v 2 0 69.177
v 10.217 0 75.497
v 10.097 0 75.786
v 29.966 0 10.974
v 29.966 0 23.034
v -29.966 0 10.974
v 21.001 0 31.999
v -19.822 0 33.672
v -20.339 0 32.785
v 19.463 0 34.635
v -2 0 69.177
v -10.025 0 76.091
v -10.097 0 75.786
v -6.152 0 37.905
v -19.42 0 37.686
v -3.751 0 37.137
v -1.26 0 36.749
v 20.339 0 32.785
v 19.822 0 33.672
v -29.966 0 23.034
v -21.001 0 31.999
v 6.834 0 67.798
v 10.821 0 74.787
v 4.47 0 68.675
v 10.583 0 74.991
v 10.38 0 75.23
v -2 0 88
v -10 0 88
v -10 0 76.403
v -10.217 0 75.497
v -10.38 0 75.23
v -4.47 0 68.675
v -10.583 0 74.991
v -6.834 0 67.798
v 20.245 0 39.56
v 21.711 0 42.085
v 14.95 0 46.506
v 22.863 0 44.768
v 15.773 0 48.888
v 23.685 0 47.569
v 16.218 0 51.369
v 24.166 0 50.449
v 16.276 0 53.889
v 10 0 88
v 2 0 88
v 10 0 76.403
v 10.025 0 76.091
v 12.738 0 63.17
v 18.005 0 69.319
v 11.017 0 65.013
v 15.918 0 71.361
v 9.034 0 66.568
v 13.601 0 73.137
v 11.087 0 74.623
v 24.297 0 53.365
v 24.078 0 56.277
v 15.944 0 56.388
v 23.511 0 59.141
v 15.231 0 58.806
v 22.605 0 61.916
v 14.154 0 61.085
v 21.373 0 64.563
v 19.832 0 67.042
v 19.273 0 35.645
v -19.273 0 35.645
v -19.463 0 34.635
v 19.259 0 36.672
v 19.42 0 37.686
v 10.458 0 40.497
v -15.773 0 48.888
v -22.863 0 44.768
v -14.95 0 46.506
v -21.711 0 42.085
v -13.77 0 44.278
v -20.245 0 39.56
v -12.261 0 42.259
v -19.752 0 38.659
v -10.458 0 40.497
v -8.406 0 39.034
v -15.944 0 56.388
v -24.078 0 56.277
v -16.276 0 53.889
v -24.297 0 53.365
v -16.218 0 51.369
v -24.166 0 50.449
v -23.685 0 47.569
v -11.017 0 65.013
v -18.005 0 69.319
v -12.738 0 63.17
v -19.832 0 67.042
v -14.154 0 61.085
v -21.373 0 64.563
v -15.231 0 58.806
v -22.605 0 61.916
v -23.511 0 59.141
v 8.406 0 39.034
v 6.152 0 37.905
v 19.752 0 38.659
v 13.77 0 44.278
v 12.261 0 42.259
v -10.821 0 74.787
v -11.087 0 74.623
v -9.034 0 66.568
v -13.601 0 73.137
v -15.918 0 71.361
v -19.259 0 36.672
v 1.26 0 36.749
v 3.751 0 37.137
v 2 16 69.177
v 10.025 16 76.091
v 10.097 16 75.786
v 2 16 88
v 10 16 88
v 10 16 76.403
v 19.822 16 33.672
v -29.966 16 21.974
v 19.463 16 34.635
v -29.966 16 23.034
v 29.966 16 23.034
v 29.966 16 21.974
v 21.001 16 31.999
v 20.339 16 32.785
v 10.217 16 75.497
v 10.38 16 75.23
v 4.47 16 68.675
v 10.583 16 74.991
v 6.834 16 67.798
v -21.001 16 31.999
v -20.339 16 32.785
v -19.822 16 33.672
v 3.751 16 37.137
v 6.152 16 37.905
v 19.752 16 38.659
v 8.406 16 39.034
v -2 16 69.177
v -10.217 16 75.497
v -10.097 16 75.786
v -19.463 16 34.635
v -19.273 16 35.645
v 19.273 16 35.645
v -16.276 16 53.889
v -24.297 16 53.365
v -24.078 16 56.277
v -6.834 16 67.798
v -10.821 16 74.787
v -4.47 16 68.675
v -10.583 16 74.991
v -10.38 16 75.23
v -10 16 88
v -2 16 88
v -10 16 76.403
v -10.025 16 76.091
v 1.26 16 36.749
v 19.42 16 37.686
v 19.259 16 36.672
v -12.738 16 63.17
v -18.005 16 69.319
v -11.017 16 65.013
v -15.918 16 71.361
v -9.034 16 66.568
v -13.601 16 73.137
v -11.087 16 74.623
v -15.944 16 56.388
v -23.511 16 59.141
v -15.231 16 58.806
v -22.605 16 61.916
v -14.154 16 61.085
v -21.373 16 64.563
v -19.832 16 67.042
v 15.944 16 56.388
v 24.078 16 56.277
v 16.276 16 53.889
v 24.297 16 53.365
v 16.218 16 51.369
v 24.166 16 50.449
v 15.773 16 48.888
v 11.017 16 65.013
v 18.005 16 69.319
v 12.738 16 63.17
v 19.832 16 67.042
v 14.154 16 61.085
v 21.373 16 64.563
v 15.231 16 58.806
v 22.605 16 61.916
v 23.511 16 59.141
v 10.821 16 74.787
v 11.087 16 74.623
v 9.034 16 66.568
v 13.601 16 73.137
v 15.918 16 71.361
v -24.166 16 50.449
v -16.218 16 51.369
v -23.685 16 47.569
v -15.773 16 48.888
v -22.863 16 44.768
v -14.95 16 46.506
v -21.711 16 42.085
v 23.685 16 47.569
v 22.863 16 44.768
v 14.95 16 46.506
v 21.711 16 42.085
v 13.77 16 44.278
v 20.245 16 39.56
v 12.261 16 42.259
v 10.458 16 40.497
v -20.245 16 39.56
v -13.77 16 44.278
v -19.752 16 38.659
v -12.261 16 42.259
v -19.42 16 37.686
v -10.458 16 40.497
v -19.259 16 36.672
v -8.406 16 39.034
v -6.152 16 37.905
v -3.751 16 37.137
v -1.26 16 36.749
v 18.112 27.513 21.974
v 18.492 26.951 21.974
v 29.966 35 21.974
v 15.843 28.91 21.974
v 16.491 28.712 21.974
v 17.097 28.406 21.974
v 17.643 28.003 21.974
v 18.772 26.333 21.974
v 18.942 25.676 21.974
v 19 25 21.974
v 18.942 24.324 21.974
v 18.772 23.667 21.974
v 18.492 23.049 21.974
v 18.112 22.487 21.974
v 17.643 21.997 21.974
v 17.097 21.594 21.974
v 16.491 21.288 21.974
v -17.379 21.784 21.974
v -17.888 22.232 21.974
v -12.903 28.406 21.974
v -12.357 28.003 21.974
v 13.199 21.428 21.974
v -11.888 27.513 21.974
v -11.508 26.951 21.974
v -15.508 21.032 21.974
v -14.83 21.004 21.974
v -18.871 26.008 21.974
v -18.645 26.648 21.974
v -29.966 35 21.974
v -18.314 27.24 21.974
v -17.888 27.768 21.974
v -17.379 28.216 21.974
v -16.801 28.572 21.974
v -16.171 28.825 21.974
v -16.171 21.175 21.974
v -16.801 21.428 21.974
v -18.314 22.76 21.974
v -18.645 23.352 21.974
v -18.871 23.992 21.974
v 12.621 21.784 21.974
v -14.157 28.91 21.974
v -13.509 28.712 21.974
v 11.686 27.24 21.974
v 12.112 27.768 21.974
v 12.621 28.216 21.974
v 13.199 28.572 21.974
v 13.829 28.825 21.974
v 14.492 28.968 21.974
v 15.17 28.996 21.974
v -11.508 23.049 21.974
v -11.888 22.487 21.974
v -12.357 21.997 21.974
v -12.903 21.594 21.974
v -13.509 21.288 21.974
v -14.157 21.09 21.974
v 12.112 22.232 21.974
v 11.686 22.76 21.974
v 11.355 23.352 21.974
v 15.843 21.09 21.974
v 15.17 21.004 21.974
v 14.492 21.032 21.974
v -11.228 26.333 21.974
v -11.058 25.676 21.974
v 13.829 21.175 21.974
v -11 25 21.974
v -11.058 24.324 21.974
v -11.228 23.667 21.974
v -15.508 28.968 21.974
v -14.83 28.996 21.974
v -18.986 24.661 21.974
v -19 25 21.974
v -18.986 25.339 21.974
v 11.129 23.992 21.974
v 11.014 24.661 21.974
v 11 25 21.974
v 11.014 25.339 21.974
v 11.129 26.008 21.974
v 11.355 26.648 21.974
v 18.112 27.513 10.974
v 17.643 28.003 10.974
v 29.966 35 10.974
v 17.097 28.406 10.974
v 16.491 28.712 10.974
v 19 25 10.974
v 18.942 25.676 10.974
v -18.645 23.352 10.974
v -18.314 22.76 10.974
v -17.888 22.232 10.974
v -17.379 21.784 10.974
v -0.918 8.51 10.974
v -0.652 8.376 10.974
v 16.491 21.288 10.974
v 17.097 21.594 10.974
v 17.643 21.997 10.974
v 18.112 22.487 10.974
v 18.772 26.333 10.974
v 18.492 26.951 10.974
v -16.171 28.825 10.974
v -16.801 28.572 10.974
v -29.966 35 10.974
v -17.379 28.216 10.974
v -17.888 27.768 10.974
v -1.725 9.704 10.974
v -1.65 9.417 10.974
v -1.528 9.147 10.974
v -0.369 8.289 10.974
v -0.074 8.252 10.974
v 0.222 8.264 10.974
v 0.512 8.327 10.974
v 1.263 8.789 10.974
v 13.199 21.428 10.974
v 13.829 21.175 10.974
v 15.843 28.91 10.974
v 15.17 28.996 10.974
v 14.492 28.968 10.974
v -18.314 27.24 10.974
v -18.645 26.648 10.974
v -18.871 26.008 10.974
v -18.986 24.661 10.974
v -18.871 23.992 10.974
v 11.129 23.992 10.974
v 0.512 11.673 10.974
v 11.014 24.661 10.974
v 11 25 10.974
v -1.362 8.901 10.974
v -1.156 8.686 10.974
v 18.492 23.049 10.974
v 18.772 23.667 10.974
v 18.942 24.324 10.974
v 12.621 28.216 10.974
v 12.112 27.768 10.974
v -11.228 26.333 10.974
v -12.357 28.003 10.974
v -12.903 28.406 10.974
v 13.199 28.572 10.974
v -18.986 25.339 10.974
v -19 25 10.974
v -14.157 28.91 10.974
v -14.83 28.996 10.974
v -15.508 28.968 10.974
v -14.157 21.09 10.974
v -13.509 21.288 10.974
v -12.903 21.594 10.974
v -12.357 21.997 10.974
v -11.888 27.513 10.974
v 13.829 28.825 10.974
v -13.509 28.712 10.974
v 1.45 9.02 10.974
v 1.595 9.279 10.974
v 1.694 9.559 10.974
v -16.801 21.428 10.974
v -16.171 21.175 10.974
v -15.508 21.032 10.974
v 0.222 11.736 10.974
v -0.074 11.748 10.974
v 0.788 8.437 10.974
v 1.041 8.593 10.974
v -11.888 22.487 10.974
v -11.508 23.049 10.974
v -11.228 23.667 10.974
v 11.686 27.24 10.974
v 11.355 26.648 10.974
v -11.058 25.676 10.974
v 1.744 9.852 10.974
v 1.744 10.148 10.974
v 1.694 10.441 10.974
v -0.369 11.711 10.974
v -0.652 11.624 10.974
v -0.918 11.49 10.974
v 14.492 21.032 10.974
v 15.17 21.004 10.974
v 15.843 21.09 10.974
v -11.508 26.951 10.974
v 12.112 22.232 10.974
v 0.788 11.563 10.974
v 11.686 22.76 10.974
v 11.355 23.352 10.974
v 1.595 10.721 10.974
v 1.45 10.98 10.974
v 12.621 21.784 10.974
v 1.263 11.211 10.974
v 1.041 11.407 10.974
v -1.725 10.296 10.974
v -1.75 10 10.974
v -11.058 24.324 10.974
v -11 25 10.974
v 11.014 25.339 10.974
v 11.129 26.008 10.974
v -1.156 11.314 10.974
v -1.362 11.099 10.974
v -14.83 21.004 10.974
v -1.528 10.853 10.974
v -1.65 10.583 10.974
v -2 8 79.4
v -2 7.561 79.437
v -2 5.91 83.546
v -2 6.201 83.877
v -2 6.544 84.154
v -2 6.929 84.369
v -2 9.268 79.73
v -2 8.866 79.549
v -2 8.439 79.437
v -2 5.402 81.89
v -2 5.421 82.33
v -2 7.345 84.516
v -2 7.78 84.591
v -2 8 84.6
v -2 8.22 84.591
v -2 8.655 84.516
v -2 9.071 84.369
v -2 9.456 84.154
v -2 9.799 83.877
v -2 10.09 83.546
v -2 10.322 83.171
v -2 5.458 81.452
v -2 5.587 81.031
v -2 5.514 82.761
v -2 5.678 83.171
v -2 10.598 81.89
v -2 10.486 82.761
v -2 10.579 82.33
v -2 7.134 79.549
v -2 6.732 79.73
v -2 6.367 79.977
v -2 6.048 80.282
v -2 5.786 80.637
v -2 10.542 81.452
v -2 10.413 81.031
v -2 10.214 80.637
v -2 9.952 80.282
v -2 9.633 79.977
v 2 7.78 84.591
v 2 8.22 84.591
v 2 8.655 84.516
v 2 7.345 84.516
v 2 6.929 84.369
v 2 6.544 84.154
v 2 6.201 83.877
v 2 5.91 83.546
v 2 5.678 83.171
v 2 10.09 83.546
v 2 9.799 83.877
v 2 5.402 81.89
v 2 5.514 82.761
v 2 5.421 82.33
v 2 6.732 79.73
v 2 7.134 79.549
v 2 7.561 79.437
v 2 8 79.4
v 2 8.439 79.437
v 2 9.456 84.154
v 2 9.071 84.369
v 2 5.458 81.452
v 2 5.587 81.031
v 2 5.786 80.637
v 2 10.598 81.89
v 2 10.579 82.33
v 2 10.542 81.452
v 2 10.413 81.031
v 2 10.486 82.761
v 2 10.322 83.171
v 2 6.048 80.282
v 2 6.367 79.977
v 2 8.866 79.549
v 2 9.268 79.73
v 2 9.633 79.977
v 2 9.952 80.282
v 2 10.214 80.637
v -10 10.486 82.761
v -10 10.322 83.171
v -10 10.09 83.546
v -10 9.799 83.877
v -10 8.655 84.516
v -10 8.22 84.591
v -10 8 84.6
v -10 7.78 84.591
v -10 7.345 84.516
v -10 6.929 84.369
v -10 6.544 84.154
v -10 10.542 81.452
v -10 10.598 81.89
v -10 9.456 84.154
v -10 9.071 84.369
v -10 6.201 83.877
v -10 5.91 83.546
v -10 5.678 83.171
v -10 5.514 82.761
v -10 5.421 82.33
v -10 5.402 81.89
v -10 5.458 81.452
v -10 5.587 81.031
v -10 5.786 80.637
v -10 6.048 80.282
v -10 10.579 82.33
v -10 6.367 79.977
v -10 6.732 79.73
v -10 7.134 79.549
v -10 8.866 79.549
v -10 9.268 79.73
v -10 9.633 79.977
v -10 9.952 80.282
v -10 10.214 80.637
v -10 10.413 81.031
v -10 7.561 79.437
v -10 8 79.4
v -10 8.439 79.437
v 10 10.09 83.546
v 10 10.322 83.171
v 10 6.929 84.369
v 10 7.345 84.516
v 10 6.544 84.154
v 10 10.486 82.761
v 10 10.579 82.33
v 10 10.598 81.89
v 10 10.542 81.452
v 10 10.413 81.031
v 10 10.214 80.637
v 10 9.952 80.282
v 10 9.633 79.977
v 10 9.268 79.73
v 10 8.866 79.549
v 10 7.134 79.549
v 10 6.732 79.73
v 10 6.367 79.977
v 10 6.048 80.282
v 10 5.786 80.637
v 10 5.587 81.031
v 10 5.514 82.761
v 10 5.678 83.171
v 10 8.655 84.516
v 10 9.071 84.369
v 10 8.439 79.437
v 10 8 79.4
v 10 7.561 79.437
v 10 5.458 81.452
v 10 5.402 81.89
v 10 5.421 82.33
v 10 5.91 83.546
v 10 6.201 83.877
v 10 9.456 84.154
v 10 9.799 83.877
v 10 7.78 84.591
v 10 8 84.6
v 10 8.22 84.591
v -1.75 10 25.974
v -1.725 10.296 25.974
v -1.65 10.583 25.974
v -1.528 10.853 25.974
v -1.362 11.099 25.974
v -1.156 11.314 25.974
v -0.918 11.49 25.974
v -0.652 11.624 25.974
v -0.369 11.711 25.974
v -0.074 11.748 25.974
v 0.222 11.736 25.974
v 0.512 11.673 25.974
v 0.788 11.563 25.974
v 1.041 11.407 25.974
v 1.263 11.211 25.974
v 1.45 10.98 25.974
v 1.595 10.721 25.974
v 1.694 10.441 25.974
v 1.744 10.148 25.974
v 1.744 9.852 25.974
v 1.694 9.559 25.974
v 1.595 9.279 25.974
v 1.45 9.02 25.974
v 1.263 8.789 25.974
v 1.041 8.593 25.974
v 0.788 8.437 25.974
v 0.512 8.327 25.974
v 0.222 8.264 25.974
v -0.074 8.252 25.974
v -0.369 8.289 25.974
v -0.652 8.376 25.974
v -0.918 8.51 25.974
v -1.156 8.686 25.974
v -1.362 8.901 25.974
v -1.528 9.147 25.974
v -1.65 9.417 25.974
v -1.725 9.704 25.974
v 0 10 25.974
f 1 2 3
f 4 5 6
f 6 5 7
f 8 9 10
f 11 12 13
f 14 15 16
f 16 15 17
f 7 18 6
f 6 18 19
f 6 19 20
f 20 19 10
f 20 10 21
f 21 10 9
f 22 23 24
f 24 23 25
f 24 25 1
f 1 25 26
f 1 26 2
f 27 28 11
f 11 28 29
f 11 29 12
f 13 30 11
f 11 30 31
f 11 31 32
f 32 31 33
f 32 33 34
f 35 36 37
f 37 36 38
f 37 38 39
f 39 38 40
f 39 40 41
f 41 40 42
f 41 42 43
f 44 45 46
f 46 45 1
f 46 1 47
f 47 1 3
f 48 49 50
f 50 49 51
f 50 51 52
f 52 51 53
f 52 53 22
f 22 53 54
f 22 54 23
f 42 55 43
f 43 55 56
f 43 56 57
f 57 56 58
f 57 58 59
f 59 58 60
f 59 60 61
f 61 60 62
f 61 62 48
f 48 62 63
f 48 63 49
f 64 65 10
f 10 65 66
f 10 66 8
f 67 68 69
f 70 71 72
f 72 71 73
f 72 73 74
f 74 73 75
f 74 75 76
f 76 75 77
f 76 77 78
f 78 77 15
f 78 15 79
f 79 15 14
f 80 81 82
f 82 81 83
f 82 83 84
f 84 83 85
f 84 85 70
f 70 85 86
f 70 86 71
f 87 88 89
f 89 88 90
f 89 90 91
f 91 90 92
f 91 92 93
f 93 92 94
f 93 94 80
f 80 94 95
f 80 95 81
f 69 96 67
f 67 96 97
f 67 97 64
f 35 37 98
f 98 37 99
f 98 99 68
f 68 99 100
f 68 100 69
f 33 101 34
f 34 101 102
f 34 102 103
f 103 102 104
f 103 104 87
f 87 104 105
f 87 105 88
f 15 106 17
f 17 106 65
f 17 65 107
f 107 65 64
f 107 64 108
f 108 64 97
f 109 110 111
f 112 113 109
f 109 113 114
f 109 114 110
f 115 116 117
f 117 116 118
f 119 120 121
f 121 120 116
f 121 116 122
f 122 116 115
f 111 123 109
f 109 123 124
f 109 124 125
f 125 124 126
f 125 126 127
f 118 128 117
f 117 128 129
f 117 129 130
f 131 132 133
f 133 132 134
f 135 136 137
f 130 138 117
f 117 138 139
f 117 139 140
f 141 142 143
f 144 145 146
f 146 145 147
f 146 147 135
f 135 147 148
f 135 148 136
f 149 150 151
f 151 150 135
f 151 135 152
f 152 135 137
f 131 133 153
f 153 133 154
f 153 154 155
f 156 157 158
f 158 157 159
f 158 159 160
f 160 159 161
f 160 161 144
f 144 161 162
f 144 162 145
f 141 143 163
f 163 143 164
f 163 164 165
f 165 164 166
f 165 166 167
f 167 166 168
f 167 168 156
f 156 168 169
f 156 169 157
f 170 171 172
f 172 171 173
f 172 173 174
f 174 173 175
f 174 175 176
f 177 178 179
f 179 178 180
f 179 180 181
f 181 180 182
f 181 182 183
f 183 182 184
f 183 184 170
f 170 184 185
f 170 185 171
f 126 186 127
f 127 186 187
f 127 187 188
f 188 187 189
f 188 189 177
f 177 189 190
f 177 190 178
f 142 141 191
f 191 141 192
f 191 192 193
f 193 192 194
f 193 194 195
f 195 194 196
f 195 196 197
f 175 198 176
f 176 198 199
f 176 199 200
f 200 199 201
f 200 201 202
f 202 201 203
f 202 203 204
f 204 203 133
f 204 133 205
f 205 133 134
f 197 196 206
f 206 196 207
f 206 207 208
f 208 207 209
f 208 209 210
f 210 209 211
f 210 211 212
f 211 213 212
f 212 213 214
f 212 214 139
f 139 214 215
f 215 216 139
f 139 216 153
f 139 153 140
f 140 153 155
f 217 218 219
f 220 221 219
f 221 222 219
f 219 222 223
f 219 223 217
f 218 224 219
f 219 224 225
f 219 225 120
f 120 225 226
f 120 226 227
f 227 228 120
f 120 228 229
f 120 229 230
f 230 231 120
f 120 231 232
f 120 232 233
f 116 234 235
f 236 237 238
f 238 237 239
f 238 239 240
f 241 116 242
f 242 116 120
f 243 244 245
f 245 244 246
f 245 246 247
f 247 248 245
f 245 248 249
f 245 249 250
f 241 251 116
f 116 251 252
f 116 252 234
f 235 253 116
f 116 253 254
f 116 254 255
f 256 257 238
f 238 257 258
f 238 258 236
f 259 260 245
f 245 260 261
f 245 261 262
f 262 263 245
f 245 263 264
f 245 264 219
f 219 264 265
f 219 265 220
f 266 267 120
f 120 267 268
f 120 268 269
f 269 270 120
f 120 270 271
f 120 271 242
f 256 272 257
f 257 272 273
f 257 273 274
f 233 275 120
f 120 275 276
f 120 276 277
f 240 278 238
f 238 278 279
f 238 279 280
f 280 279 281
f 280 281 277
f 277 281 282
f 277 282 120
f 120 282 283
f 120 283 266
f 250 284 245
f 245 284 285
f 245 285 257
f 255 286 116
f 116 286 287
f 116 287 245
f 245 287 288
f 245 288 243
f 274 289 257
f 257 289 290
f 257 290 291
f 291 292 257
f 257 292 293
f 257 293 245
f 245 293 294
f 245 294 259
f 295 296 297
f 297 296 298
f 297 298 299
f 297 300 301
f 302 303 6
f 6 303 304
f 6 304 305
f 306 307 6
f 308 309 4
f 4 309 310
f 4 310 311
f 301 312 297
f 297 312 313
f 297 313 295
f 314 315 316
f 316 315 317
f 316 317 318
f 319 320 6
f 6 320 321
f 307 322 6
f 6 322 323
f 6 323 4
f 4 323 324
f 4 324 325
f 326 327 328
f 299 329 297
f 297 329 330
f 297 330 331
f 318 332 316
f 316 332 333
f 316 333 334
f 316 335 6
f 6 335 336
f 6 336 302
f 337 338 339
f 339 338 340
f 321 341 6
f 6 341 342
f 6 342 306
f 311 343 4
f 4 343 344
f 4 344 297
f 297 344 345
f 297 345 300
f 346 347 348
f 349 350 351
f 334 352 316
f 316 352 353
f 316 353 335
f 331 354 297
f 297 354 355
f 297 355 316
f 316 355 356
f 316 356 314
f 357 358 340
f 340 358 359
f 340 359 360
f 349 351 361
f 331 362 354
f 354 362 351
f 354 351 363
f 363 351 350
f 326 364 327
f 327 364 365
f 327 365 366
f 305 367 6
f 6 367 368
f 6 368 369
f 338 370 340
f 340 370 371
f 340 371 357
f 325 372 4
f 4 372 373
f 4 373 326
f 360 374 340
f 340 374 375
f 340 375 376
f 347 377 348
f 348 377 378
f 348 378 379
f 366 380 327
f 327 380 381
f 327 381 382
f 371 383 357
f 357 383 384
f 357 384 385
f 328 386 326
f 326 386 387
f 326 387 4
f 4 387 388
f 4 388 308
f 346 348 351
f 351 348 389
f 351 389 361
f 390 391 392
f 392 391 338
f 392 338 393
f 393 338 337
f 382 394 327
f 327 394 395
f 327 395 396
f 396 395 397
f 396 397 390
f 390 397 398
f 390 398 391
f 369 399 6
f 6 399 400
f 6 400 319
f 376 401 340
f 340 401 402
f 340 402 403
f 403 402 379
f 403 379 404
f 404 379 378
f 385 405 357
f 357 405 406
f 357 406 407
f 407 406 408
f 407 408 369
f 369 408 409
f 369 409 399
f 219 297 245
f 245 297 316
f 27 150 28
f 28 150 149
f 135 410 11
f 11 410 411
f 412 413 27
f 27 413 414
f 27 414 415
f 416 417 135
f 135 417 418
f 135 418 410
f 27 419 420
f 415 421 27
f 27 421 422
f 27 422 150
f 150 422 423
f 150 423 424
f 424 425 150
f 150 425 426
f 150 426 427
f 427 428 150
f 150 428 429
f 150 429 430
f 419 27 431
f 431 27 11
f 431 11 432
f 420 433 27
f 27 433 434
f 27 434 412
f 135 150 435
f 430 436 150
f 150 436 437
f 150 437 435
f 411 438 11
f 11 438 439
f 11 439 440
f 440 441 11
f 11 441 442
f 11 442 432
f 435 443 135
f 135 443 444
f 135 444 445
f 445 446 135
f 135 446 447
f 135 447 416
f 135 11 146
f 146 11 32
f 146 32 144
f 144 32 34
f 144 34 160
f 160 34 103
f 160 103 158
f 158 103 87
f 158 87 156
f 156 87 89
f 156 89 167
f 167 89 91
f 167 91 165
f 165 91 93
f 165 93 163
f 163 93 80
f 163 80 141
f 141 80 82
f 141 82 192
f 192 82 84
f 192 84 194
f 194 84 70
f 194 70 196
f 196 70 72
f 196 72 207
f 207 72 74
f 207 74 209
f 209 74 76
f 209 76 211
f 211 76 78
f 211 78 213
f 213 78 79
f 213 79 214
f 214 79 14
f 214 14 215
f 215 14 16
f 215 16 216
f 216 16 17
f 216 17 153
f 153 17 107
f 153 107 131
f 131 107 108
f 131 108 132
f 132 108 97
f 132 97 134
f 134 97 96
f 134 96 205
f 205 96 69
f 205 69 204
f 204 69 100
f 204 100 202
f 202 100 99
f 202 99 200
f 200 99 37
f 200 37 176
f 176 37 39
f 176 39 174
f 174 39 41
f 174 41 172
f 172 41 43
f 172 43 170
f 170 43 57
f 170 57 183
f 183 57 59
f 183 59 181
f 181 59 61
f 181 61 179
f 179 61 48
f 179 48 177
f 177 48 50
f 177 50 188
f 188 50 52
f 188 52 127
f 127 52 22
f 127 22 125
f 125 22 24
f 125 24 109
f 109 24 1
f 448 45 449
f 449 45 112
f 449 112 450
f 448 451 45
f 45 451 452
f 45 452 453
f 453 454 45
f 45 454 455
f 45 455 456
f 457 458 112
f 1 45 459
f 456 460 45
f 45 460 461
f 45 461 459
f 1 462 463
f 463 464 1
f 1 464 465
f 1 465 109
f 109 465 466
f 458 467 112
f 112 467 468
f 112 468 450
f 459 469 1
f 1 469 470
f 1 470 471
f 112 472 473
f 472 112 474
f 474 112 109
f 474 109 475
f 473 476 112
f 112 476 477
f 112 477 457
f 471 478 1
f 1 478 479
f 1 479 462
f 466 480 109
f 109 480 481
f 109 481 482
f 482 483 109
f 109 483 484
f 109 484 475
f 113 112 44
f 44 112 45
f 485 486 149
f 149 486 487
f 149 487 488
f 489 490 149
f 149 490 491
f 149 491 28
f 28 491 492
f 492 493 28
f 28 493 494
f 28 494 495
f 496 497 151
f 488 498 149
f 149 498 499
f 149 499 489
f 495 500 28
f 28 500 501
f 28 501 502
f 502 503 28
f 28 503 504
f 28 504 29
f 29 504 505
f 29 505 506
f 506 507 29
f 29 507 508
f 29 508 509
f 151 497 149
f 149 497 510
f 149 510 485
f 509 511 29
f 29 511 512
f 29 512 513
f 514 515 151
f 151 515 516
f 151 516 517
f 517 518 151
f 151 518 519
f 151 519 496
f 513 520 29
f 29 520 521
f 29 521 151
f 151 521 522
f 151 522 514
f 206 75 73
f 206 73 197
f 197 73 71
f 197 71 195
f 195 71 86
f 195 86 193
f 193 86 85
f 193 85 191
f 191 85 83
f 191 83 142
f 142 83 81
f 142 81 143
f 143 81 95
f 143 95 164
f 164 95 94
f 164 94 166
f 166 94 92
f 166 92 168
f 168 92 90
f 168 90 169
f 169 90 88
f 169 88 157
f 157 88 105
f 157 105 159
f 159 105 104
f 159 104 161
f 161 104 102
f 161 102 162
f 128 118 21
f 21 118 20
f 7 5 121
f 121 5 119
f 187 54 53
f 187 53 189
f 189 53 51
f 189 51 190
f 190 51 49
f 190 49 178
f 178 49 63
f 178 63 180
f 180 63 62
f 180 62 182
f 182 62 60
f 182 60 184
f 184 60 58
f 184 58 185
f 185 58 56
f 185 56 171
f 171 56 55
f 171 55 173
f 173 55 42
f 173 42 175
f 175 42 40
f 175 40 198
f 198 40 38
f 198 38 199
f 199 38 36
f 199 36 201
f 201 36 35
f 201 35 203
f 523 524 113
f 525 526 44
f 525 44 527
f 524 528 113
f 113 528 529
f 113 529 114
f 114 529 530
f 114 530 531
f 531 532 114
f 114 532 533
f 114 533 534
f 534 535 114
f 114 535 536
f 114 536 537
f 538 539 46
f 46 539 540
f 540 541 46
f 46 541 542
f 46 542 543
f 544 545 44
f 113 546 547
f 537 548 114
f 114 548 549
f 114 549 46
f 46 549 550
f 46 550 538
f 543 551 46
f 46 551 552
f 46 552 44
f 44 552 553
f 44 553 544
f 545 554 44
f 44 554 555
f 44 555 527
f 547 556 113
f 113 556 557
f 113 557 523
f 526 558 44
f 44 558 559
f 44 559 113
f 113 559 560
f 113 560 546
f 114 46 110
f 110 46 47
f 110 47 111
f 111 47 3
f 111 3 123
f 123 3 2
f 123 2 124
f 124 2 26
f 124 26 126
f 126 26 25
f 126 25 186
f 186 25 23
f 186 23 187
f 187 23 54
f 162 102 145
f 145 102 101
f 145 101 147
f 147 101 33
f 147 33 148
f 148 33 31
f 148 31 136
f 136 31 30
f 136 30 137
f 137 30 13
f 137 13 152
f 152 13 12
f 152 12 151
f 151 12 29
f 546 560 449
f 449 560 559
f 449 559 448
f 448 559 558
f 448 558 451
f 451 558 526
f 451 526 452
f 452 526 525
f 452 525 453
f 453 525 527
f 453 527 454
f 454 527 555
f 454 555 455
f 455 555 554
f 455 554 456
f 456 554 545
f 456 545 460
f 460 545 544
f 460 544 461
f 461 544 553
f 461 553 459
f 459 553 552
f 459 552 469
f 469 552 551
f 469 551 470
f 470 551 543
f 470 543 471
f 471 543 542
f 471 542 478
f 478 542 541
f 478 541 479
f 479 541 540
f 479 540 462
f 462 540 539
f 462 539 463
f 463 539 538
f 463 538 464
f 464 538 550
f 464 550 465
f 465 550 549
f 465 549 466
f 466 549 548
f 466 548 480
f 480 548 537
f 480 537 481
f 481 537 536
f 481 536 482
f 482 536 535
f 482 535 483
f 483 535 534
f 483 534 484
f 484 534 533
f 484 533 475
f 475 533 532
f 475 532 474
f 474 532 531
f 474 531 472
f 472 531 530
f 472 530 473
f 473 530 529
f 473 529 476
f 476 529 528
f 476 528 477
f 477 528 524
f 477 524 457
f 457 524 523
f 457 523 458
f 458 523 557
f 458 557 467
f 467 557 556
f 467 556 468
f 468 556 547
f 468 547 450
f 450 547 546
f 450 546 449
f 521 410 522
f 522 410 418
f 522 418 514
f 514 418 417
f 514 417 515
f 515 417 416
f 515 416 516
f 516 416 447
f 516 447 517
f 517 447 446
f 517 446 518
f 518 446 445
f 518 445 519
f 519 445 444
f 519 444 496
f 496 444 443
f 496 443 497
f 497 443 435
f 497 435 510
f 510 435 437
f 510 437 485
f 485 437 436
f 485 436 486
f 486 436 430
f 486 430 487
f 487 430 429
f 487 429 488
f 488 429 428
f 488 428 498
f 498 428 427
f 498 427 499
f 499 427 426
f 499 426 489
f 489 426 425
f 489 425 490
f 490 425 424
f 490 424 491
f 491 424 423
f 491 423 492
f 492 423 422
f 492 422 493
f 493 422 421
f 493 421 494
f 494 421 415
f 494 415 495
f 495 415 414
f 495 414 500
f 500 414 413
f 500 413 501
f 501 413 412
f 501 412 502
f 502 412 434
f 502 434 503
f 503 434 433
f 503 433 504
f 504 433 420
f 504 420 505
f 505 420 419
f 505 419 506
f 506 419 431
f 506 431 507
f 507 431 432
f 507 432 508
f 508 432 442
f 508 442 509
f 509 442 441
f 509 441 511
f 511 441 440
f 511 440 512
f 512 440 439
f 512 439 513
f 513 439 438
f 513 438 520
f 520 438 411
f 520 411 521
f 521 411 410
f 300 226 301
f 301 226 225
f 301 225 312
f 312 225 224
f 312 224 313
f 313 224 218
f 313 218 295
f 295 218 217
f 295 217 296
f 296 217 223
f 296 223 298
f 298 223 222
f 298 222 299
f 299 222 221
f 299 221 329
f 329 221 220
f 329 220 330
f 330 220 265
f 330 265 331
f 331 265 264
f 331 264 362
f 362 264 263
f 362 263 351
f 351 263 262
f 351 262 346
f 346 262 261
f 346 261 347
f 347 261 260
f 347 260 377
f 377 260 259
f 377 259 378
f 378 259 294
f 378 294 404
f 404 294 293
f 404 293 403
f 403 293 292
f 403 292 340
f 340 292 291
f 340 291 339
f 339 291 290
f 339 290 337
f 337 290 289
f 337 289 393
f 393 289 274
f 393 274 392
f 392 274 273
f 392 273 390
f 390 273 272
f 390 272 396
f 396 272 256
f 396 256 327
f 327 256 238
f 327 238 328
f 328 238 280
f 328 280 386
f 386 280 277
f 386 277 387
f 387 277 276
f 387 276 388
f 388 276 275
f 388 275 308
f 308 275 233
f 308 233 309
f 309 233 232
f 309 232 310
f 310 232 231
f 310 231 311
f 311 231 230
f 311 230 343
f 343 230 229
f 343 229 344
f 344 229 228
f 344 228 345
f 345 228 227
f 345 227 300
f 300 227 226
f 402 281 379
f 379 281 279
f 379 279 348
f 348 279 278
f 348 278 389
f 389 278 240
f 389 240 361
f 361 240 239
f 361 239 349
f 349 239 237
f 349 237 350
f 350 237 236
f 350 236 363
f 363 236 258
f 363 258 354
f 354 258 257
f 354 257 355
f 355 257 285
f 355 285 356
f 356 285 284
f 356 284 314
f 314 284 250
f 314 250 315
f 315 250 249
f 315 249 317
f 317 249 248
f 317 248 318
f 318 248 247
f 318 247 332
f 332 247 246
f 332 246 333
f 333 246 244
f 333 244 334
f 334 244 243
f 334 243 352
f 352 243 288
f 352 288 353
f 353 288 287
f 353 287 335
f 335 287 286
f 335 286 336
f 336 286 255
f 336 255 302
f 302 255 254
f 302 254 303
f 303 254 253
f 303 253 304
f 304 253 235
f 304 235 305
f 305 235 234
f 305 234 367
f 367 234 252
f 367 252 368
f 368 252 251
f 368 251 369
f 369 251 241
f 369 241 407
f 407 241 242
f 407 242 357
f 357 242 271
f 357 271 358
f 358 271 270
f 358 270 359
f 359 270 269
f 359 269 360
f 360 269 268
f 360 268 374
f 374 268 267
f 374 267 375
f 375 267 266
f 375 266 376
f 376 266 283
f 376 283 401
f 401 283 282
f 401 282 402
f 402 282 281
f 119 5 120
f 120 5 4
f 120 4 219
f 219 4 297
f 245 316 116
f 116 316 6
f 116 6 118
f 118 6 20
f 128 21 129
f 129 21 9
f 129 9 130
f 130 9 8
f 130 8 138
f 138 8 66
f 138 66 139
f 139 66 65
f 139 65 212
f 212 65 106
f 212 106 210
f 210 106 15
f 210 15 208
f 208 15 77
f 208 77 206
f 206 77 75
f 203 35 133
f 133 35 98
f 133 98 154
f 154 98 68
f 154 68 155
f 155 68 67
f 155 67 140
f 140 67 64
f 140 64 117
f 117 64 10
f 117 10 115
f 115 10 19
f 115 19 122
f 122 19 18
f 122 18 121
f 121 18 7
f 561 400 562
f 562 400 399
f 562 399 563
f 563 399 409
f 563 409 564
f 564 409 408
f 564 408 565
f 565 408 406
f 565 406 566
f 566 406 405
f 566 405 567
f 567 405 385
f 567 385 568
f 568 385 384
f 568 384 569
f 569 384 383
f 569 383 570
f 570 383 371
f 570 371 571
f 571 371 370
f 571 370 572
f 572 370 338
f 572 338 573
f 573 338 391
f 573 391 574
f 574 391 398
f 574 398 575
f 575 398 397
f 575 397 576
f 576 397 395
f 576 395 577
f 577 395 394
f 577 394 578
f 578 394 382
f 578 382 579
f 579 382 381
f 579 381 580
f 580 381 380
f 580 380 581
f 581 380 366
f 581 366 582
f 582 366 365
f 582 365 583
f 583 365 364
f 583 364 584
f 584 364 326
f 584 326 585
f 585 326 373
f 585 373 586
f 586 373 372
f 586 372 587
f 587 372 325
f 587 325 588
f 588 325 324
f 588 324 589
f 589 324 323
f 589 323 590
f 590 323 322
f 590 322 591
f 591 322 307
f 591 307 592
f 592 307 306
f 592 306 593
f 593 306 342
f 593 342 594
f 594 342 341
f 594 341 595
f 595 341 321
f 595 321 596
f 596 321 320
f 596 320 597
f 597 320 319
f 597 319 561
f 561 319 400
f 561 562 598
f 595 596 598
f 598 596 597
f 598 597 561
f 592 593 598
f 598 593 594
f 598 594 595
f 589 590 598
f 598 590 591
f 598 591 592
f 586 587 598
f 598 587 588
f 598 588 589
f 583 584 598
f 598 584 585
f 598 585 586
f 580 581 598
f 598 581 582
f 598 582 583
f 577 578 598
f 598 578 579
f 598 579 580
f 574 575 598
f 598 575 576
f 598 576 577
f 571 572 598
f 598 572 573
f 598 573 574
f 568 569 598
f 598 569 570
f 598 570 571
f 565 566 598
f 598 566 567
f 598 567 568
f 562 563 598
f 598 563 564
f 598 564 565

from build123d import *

# Parameters (mm, degrees)
EXTRUDE_THIN1_DEPTH     = 60
BOSS_EXTRUDE1_DEPTH     = 16
CUT_EXTRUDE1_DEPTH      = 105.764405022
CUT_EXTRUDE2_DEPTH      = 112.059105885
FILLET2_R               = 2
CUT_EXTRUDE3_DEPTH      = 112.059105885
CUT_EXTRUDE3_DEPTH_BACK = 112.059105885
SKETCH6_R               = 2.6
CUT_EXTRUDE4_DEPTH      = 105.764405022
CUT_EXTRUDE4_DEPTH_BACK = 105.764405022
SKETCH7_W               = 78.423709943
SKETCH7_H               = 52.802383793
SKETCH8_W               = 51.319796382
SKETCH8_H               = 40.051163843
BOSS_EXTRUDE2_DEPTH     = 16
SKETCH9_W               = 91.777168916
SKETCH9_H               = 33.81264118
CUT_EXTRUDE5_DEPTH      = 95.816269701
SKETCH12_W              = 62.932503526
SKETCH12_H              = 35
SKETCH12_R              = 4
BOSS_EXTRUDE5_DEPTH     = 11
CUT_EXTRUDE6_DEPTH      = 96.368364776
CUT_EXTRUDE6_DEPTH_BACK = 96.368364776
SKETCH13_W              = 157.086871367
SKETCH13_H              = 169.783274599
SKETCH13_W_2            = 59.932503526
SKETCH13_H_2            = 122.233999749
FILLET6_R               = 6
SKETCH14_R              = 1.75
CUT_EXTRUDE7_DEPTH      = 15
CUT_EXTRUDE8_DEPTH      = 30


with BuildPart() as part:
    # Sketch1 → Extrude-Thin1 (new body)
    with BuildSketch(Plane(origin=(0, 0, 0), x_dir=(1, 0, 0), z_dir=(0, 1, 0))):
        Polygon((-28.637824638, -0.353553391), (0, -28.991378029), (28.637824638, -0.353553391), (31.466251763, -3.181980515), (0, -34.648232278), (-31.466251763, -3.181980515), align=None)
    extrude(amount=EXTRUDE_THIN1_DEPTH)

    # Sketch2 → Boss-Extrude1 (add)
    with BuildSketch(Plane(origin=(0, 0, 0), x_dir=(1, 0, 0), z_dir=(0, 1, 0))):
        with BuildLine():
            Line((-31.466251763, -3.181980515), (-31.466251763, -88))
            Line((-31.466251763, -88), (-2, -88))
            Line((-2, -88), (-2, -69.17683529))
            ThreePointArc((-2, -69.17683529), (0, -36.7), (2, -69.17683529))
            Line((2, -69.17683529), (2, -88))
            Line((2, -88), (31.466251763, -88))
            Line((31.466251763, -88), (31.466251763, -3.181980515))
            Line((31.466251763, -3.181980515), (0, -34.648232278))
            Line((0, -34.648232278), (-31.466251763, -3.181980515))
        make_face()
    extrude(amount=BOSS_EXTRUDE1_DEPTH)

    # Sketch3 → Cut-Extrude1 (cut, through all)
    with BuildSketch(Plane(origin=(17.324116139, 0, 17.324116139), x_dir=(0.7071067811865475, 0, -0.7071067811865476), z_dir=(0.7071067811865476, 0, 0.7071067811865475))):
        with BuildLine():
            Line((2.75, 50), (2.75, 20))
            ThreePointArc((2.75, 20), (0, 17.25), (-2.75, 20))
            Line((-2.75, 20), (-2.75, 50))
            ThreePointArc((-2.75, 50), (0, 52.75), (2.75, 50))
        make_face()
    cut_extrude1 = extrude(amount=-CUT_EXTRUDE1_DEPTH, mode=Mode.SUBTRACT)

    # Mirror1: Cut-Extrude1 across plane
    add(cut_extrude1.mirror(Plane(origin=(0, 0, 0), x_dir=(0, 0, 1), z_dir=(1, 0, 0))), mode=Mode.SUBTRACT)

    # Sketch5 → Cut-Extrude2 (cut, through all)
    with BuildSketch(Plane(origin=(0, 0, 0), x_dir=(1, 0, 0), z_dir=(0, 1, 0))):
        with BuildLine():
            Line((-31.466251763, -21.533748237), (-17.182694783, -35.817305217))
            ThreePointArc((-17.182694783, -35.817305217), (-23.904625503, -57.365647669), (-10, -75.147008827))
            Line((-10, -75.147008827), (-10, -88))
            Line((-10, -88), (-31.466251763, -88))
            Line((-31.466251763, -88), (-31.466251763, -21.533748237))
        make_face()
    cut_extrude2 = extrude(amount=CUT_EXTRUDE2_DEPTH, mode=Mode.SUBTRACT)

    # Mirror2: Cut-Extrude2 across plane
    add(cut_extrude2.mirror(Plane(origin=(0, 0, 0), x_dir=(0, 0, 1), z_dir=(1, 0, 0))), mode=Mode.SUBTRACT)

    # Fillet2
    fillet2_edges = [part.edges().sort_by_distance(p)[0] for p in [
        (10, 8, 75.147008827),
        (-10, 8, 75.147008827),
    ]]
    fillet(fillet2_edges, radius=FILLET2_R)

    # Sketch6 → Cut-Extrude3 (cut, two sides: drawn at the far end of the back side and taken through both)
    with BuildSketch(Plane(origin=(0, 0, 0), x_dir=(0, 0, -1), z_dir=(1, 0, 0)).offset(-CUT_EXTRUDE3_DEPTH_BACK)):
        with Locations((-82, 8)):
            Circle(SKETCH6_R)
    extrude(amount=CUT_EXTRUDE3_DEPTH + CUT_EXTRUDE3_DEPTH_BACK, mode=Mode.SUBTRACT)

    # Sketch7 → Cut-Extrude4 (cut, two sides: drawn at the far end of the back side and taken through both)
    with BuildSketch(Plane(origin=(-17.324116139, 0, 17.324116139), x_dir=(0.7071067811865475, 0, 0.7071067811865476), z_dir=(-0.7071067811865476, 0, 0.7071067811865475)).offset(-CUT_EXTRUDE4_DEPTH_BACK)):
        with Locations((-0.892385334, 42.401191897)):
            Rectangle(SKETCH7_W, SKETCH7_H)
    extrude(amount=CUT_EXTRUDE4_DEPTH + CUT_EXTRUDE4_DEPTH_BACK, mode=Mode.SUBTRACT)

    # Sketch8 → Boss-Extrude2 (add)
    with BuildSketch(Plane(origin=(0, 16, 0), x_dir=(1, 0, 0), z_dir=(0, 1, 0))):
        with Locations((0.329762311, -10.635090251)):
            Rectangle(SKETCH8_W, SKETCH8_H)
    extrude(amount=-BOSS_EXTRUDE2_DEPTH)

    # Sketch9 → Cut-Extrude5 (cut, through all)
    with BuildSketch(Plane(origin=(0, 16, 0), x_dir=(1, 0, 0), z_dir=(0, 1, 0))):
        with Locations((0.452847873, -5.06743142)):
            Rectangle(SKETCH9_W, SKETCH9_H)
    extrude(amount=-CUT_EXTRUDE5_DEPTH, mode=Mode.SUBTRACT)

    # Sketch12 → Boss-Extrude5 (add)
    with BuildSketch(Plane(origin=(0, 0, 21.97375201), x_dir=(-1, 0, 0), z_dir=(0, 0, -1))):
        with Locations((0, 17.5)):
            Rectangle(SKETCH12_W, SKETCH12_H)
        with Locations((-15, 25)):
            Circle(SKETCH12_R, mode=Mode.SUBTRACT)
        with Locations((15, 25)):
            Circle(SKETCH12_R, mode=Mode.SUBTRACT)
    extrude(amount=BOSS_EXTRUDE5_DEPTH)

    # Sketch13 → Cut-Extrude6 (cut, two sides: drawn at the far end of the back side and taken through both)
    with BuildSketch(Plane(origin=(0, 16, 0), x_dir=(1, 0, 0), z_dir=(0, 1, 0)).offset(-CUT_EXTRUDE6_DEPTH_BACK)):
        with Locations((-2.365016289, -53.735825088)):
            Rectangle(SKETCH13_W, SKETCH13_H)
        with Locations((0, -51.3708088)):
            Rectangle(SKETCH13_W_2, SKETCH13_H_2, mode=Mode.SUBTRACT)
    extrude(amount=CUT_EXTRUDE6_DEPTH + CUT_EXTRUDE6_DEPTH_BACK, mode=Mode.SUBTRACT)

    # Fillet6
    fillet6_edges = [part.edges().sort_by_distance(p)[0] for p in [
        (17.182694783, 8, 35.817305217),
        (-17.182694783, 8, 35.817305217),
    ]]
    fillet(fillet6_edges, radius=FILLET6_R)

    # Sketch14 → Cut-Extrude7 (cut)
    with BuildSketch(Plane(origin=(0, 0, 10.97375201), x_dir=(-1, 0, 0), z_dir=(0, 0, -1))):
        with Locations((0, 10)):
            Circle(SKETCH14_R)
    extrude(amount=-CUT_EXTRUDE7_DEPTH, mode=Mode.SUBTRACT)

    # Sketch15 → Cut-Extrude8 (cut)
    with BuildSketch(Plane(origin=(0, 16, 0), x_dir=(1, 0, 0), z_dir=(0, 1, 0))):
        Polygon((25.989660502, -27.010339498), (22.339327827, -30.660672173), (25.989660502, -30.660672173), align=None)
        Polygon((-25.989660502, -30.660672173), (-25.989660502, -27.010339498), (-22.339327827, -30.660672173), align=None)
    extrude(amount=-CUT_EXTRUDE8_DEPTH, mode=Mode.SUBTRACT)


solid = part.part
